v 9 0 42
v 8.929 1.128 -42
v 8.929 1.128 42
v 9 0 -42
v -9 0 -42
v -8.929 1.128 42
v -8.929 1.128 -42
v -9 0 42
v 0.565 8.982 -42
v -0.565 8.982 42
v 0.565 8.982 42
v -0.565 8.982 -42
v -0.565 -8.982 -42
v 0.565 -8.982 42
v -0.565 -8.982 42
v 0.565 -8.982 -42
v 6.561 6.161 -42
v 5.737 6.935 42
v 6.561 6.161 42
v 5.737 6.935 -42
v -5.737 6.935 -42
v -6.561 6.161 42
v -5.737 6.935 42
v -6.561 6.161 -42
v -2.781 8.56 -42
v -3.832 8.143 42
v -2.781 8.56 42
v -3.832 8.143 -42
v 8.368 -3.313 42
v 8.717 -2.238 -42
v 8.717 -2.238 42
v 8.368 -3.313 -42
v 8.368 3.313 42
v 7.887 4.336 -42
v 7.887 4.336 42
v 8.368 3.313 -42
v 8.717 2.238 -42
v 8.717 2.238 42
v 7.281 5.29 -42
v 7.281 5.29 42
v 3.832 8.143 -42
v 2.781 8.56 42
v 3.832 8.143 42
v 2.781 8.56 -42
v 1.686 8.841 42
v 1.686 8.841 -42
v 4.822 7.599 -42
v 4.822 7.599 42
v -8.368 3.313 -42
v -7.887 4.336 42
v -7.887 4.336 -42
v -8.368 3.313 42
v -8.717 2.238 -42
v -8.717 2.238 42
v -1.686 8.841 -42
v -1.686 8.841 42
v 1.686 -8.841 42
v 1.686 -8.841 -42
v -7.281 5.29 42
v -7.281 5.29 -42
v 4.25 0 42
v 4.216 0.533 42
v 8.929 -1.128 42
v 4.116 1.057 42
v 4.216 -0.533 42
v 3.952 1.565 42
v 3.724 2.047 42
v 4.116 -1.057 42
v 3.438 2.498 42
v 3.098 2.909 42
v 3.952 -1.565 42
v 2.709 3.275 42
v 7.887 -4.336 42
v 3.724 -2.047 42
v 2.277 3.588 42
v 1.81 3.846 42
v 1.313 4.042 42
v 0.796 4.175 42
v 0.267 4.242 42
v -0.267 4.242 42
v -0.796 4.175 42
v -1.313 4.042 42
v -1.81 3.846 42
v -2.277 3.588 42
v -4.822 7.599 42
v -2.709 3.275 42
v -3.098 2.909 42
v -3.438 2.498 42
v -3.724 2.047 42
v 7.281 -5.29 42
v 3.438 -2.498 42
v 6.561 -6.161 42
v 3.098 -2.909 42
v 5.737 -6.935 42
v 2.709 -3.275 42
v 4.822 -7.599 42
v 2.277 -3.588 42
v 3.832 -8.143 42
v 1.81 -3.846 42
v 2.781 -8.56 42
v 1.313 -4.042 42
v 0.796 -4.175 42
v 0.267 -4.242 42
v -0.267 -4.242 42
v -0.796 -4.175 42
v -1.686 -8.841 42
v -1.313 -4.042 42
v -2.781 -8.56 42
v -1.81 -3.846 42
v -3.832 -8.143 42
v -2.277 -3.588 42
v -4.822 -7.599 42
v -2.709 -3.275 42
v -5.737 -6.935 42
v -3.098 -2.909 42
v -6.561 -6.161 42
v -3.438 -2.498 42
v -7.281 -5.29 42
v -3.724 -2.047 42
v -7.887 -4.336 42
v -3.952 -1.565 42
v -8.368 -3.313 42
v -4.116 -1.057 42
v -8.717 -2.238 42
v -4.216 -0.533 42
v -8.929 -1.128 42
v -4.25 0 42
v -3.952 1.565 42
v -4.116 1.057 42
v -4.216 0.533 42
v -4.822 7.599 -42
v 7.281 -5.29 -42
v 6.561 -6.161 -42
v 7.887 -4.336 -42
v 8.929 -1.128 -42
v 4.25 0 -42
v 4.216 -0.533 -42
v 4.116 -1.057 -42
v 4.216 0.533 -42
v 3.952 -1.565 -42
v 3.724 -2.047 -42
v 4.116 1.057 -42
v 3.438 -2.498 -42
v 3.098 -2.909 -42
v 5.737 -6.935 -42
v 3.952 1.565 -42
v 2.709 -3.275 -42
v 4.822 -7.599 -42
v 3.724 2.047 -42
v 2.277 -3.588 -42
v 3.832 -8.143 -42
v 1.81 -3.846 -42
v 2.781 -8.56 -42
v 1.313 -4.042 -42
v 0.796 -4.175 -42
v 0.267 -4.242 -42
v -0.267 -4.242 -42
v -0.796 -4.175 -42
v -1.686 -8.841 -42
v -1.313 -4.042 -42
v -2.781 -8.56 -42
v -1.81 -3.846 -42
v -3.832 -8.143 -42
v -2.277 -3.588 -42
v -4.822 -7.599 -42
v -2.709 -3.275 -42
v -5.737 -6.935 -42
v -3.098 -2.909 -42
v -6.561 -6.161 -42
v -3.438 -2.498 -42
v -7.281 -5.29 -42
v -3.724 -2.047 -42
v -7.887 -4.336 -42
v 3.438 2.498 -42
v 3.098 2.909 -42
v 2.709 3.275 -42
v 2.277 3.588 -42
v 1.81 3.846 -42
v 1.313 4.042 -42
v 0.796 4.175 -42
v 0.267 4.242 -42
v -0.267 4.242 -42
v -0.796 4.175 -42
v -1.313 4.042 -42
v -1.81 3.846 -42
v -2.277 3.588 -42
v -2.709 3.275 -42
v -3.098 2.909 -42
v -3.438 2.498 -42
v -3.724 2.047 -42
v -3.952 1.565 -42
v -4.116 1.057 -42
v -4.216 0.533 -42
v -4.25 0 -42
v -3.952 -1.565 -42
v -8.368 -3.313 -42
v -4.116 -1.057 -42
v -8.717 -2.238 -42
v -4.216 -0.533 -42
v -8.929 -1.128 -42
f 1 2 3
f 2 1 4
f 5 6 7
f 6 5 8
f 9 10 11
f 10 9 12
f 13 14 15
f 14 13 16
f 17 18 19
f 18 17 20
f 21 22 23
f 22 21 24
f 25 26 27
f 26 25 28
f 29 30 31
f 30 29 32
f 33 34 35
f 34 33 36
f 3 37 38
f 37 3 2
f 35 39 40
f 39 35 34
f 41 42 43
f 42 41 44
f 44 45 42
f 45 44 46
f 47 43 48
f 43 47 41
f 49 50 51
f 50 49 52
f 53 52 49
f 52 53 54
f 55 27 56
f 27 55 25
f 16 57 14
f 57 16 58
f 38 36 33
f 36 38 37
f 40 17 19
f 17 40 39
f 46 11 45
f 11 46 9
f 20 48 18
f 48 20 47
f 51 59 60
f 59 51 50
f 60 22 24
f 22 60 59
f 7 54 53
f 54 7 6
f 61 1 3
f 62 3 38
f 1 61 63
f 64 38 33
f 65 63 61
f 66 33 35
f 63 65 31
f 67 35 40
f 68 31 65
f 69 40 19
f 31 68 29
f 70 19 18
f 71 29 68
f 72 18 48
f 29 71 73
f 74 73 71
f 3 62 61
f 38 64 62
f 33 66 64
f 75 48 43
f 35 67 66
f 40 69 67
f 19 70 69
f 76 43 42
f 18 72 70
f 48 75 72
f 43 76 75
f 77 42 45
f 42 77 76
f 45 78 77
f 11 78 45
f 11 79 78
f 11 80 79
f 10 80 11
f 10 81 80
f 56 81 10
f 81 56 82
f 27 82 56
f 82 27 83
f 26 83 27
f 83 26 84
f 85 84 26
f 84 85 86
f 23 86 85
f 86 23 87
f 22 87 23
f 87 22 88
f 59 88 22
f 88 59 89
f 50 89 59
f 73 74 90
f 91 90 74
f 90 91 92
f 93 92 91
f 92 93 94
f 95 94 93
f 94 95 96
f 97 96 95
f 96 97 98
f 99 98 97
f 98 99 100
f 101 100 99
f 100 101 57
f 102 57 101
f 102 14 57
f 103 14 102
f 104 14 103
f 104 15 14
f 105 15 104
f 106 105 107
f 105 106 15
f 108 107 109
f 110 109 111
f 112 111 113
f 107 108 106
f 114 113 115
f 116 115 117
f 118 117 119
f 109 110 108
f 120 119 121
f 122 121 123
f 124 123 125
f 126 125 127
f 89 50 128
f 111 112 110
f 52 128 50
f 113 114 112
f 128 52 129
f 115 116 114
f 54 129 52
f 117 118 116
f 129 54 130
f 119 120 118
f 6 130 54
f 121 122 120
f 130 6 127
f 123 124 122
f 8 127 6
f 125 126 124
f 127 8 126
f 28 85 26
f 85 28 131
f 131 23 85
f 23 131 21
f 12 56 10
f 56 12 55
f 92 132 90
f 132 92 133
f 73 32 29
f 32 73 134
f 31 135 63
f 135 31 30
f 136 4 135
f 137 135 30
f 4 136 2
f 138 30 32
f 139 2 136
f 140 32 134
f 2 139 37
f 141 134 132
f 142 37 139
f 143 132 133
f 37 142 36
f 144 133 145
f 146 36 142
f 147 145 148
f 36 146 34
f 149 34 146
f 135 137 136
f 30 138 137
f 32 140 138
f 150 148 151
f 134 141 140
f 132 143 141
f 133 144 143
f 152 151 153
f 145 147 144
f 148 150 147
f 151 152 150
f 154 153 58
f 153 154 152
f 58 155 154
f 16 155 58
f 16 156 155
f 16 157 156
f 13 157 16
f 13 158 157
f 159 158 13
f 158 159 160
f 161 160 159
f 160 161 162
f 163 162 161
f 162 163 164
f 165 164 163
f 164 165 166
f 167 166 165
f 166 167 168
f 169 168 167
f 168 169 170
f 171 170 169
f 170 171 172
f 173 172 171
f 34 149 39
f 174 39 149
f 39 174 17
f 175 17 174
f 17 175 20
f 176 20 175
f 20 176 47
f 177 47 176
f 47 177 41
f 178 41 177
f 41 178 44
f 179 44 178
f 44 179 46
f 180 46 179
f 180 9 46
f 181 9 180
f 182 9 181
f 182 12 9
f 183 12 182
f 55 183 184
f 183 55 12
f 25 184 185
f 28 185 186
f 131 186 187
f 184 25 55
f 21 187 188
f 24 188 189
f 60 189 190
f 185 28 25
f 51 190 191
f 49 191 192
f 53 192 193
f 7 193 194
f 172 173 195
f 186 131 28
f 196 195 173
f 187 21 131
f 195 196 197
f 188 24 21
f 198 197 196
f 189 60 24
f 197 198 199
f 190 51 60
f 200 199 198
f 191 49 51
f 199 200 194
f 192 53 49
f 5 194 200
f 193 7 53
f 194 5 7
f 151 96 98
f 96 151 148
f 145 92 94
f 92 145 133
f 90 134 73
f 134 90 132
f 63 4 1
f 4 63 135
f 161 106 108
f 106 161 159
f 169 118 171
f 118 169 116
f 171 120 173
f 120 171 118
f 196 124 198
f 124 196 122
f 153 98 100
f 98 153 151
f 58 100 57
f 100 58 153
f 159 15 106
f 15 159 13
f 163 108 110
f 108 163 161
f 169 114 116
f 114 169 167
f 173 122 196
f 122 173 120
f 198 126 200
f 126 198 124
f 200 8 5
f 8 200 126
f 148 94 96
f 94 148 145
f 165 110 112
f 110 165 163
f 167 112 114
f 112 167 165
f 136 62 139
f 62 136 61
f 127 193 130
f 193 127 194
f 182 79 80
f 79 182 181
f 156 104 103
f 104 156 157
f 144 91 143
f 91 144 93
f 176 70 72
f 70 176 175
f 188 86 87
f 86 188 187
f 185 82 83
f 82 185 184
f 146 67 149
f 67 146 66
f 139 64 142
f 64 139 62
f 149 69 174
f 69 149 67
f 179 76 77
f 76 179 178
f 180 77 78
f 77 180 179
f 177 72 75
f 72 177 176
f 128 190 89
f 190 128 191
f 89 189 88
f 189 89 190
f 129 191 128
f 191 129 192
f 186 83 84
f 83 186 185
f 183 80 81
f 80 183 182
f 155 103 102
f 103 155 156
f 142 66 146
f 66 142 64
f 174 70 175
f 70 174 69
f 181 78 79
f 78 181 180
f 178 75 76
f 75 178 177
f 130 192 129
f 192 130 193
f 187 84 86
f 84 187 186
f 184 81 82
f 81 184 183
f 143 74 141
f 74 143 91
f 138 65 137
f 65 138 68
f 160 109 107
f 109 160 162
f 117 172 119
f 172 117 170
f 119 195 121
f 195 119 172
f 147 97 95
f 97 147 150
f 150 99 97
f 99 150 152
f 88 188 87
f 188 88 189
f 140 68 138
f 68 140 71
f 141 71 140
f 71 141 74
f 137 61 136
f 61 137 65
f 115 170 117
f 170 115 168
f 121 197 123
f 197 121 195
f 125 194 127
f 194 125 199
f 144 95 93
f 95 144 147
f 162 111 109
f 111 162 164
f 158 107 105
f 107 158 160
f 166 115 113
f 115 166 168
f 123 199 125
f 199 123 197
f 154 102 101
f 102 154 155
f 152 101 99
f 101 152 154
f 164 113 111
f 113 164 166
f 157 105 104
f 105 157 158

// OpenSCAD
$fn = 50;


difference() {
	union() {
		translate(v = [0, 0, -42.0000000000]) {
			cylinder(h = 84, r = 9.0000000000);
		}
	}
	union() {
		translate(v = [0, 0, -100.0000000000]) {
			cylinder(h = 200, r = 4.2500000000);
		}
	}
}
